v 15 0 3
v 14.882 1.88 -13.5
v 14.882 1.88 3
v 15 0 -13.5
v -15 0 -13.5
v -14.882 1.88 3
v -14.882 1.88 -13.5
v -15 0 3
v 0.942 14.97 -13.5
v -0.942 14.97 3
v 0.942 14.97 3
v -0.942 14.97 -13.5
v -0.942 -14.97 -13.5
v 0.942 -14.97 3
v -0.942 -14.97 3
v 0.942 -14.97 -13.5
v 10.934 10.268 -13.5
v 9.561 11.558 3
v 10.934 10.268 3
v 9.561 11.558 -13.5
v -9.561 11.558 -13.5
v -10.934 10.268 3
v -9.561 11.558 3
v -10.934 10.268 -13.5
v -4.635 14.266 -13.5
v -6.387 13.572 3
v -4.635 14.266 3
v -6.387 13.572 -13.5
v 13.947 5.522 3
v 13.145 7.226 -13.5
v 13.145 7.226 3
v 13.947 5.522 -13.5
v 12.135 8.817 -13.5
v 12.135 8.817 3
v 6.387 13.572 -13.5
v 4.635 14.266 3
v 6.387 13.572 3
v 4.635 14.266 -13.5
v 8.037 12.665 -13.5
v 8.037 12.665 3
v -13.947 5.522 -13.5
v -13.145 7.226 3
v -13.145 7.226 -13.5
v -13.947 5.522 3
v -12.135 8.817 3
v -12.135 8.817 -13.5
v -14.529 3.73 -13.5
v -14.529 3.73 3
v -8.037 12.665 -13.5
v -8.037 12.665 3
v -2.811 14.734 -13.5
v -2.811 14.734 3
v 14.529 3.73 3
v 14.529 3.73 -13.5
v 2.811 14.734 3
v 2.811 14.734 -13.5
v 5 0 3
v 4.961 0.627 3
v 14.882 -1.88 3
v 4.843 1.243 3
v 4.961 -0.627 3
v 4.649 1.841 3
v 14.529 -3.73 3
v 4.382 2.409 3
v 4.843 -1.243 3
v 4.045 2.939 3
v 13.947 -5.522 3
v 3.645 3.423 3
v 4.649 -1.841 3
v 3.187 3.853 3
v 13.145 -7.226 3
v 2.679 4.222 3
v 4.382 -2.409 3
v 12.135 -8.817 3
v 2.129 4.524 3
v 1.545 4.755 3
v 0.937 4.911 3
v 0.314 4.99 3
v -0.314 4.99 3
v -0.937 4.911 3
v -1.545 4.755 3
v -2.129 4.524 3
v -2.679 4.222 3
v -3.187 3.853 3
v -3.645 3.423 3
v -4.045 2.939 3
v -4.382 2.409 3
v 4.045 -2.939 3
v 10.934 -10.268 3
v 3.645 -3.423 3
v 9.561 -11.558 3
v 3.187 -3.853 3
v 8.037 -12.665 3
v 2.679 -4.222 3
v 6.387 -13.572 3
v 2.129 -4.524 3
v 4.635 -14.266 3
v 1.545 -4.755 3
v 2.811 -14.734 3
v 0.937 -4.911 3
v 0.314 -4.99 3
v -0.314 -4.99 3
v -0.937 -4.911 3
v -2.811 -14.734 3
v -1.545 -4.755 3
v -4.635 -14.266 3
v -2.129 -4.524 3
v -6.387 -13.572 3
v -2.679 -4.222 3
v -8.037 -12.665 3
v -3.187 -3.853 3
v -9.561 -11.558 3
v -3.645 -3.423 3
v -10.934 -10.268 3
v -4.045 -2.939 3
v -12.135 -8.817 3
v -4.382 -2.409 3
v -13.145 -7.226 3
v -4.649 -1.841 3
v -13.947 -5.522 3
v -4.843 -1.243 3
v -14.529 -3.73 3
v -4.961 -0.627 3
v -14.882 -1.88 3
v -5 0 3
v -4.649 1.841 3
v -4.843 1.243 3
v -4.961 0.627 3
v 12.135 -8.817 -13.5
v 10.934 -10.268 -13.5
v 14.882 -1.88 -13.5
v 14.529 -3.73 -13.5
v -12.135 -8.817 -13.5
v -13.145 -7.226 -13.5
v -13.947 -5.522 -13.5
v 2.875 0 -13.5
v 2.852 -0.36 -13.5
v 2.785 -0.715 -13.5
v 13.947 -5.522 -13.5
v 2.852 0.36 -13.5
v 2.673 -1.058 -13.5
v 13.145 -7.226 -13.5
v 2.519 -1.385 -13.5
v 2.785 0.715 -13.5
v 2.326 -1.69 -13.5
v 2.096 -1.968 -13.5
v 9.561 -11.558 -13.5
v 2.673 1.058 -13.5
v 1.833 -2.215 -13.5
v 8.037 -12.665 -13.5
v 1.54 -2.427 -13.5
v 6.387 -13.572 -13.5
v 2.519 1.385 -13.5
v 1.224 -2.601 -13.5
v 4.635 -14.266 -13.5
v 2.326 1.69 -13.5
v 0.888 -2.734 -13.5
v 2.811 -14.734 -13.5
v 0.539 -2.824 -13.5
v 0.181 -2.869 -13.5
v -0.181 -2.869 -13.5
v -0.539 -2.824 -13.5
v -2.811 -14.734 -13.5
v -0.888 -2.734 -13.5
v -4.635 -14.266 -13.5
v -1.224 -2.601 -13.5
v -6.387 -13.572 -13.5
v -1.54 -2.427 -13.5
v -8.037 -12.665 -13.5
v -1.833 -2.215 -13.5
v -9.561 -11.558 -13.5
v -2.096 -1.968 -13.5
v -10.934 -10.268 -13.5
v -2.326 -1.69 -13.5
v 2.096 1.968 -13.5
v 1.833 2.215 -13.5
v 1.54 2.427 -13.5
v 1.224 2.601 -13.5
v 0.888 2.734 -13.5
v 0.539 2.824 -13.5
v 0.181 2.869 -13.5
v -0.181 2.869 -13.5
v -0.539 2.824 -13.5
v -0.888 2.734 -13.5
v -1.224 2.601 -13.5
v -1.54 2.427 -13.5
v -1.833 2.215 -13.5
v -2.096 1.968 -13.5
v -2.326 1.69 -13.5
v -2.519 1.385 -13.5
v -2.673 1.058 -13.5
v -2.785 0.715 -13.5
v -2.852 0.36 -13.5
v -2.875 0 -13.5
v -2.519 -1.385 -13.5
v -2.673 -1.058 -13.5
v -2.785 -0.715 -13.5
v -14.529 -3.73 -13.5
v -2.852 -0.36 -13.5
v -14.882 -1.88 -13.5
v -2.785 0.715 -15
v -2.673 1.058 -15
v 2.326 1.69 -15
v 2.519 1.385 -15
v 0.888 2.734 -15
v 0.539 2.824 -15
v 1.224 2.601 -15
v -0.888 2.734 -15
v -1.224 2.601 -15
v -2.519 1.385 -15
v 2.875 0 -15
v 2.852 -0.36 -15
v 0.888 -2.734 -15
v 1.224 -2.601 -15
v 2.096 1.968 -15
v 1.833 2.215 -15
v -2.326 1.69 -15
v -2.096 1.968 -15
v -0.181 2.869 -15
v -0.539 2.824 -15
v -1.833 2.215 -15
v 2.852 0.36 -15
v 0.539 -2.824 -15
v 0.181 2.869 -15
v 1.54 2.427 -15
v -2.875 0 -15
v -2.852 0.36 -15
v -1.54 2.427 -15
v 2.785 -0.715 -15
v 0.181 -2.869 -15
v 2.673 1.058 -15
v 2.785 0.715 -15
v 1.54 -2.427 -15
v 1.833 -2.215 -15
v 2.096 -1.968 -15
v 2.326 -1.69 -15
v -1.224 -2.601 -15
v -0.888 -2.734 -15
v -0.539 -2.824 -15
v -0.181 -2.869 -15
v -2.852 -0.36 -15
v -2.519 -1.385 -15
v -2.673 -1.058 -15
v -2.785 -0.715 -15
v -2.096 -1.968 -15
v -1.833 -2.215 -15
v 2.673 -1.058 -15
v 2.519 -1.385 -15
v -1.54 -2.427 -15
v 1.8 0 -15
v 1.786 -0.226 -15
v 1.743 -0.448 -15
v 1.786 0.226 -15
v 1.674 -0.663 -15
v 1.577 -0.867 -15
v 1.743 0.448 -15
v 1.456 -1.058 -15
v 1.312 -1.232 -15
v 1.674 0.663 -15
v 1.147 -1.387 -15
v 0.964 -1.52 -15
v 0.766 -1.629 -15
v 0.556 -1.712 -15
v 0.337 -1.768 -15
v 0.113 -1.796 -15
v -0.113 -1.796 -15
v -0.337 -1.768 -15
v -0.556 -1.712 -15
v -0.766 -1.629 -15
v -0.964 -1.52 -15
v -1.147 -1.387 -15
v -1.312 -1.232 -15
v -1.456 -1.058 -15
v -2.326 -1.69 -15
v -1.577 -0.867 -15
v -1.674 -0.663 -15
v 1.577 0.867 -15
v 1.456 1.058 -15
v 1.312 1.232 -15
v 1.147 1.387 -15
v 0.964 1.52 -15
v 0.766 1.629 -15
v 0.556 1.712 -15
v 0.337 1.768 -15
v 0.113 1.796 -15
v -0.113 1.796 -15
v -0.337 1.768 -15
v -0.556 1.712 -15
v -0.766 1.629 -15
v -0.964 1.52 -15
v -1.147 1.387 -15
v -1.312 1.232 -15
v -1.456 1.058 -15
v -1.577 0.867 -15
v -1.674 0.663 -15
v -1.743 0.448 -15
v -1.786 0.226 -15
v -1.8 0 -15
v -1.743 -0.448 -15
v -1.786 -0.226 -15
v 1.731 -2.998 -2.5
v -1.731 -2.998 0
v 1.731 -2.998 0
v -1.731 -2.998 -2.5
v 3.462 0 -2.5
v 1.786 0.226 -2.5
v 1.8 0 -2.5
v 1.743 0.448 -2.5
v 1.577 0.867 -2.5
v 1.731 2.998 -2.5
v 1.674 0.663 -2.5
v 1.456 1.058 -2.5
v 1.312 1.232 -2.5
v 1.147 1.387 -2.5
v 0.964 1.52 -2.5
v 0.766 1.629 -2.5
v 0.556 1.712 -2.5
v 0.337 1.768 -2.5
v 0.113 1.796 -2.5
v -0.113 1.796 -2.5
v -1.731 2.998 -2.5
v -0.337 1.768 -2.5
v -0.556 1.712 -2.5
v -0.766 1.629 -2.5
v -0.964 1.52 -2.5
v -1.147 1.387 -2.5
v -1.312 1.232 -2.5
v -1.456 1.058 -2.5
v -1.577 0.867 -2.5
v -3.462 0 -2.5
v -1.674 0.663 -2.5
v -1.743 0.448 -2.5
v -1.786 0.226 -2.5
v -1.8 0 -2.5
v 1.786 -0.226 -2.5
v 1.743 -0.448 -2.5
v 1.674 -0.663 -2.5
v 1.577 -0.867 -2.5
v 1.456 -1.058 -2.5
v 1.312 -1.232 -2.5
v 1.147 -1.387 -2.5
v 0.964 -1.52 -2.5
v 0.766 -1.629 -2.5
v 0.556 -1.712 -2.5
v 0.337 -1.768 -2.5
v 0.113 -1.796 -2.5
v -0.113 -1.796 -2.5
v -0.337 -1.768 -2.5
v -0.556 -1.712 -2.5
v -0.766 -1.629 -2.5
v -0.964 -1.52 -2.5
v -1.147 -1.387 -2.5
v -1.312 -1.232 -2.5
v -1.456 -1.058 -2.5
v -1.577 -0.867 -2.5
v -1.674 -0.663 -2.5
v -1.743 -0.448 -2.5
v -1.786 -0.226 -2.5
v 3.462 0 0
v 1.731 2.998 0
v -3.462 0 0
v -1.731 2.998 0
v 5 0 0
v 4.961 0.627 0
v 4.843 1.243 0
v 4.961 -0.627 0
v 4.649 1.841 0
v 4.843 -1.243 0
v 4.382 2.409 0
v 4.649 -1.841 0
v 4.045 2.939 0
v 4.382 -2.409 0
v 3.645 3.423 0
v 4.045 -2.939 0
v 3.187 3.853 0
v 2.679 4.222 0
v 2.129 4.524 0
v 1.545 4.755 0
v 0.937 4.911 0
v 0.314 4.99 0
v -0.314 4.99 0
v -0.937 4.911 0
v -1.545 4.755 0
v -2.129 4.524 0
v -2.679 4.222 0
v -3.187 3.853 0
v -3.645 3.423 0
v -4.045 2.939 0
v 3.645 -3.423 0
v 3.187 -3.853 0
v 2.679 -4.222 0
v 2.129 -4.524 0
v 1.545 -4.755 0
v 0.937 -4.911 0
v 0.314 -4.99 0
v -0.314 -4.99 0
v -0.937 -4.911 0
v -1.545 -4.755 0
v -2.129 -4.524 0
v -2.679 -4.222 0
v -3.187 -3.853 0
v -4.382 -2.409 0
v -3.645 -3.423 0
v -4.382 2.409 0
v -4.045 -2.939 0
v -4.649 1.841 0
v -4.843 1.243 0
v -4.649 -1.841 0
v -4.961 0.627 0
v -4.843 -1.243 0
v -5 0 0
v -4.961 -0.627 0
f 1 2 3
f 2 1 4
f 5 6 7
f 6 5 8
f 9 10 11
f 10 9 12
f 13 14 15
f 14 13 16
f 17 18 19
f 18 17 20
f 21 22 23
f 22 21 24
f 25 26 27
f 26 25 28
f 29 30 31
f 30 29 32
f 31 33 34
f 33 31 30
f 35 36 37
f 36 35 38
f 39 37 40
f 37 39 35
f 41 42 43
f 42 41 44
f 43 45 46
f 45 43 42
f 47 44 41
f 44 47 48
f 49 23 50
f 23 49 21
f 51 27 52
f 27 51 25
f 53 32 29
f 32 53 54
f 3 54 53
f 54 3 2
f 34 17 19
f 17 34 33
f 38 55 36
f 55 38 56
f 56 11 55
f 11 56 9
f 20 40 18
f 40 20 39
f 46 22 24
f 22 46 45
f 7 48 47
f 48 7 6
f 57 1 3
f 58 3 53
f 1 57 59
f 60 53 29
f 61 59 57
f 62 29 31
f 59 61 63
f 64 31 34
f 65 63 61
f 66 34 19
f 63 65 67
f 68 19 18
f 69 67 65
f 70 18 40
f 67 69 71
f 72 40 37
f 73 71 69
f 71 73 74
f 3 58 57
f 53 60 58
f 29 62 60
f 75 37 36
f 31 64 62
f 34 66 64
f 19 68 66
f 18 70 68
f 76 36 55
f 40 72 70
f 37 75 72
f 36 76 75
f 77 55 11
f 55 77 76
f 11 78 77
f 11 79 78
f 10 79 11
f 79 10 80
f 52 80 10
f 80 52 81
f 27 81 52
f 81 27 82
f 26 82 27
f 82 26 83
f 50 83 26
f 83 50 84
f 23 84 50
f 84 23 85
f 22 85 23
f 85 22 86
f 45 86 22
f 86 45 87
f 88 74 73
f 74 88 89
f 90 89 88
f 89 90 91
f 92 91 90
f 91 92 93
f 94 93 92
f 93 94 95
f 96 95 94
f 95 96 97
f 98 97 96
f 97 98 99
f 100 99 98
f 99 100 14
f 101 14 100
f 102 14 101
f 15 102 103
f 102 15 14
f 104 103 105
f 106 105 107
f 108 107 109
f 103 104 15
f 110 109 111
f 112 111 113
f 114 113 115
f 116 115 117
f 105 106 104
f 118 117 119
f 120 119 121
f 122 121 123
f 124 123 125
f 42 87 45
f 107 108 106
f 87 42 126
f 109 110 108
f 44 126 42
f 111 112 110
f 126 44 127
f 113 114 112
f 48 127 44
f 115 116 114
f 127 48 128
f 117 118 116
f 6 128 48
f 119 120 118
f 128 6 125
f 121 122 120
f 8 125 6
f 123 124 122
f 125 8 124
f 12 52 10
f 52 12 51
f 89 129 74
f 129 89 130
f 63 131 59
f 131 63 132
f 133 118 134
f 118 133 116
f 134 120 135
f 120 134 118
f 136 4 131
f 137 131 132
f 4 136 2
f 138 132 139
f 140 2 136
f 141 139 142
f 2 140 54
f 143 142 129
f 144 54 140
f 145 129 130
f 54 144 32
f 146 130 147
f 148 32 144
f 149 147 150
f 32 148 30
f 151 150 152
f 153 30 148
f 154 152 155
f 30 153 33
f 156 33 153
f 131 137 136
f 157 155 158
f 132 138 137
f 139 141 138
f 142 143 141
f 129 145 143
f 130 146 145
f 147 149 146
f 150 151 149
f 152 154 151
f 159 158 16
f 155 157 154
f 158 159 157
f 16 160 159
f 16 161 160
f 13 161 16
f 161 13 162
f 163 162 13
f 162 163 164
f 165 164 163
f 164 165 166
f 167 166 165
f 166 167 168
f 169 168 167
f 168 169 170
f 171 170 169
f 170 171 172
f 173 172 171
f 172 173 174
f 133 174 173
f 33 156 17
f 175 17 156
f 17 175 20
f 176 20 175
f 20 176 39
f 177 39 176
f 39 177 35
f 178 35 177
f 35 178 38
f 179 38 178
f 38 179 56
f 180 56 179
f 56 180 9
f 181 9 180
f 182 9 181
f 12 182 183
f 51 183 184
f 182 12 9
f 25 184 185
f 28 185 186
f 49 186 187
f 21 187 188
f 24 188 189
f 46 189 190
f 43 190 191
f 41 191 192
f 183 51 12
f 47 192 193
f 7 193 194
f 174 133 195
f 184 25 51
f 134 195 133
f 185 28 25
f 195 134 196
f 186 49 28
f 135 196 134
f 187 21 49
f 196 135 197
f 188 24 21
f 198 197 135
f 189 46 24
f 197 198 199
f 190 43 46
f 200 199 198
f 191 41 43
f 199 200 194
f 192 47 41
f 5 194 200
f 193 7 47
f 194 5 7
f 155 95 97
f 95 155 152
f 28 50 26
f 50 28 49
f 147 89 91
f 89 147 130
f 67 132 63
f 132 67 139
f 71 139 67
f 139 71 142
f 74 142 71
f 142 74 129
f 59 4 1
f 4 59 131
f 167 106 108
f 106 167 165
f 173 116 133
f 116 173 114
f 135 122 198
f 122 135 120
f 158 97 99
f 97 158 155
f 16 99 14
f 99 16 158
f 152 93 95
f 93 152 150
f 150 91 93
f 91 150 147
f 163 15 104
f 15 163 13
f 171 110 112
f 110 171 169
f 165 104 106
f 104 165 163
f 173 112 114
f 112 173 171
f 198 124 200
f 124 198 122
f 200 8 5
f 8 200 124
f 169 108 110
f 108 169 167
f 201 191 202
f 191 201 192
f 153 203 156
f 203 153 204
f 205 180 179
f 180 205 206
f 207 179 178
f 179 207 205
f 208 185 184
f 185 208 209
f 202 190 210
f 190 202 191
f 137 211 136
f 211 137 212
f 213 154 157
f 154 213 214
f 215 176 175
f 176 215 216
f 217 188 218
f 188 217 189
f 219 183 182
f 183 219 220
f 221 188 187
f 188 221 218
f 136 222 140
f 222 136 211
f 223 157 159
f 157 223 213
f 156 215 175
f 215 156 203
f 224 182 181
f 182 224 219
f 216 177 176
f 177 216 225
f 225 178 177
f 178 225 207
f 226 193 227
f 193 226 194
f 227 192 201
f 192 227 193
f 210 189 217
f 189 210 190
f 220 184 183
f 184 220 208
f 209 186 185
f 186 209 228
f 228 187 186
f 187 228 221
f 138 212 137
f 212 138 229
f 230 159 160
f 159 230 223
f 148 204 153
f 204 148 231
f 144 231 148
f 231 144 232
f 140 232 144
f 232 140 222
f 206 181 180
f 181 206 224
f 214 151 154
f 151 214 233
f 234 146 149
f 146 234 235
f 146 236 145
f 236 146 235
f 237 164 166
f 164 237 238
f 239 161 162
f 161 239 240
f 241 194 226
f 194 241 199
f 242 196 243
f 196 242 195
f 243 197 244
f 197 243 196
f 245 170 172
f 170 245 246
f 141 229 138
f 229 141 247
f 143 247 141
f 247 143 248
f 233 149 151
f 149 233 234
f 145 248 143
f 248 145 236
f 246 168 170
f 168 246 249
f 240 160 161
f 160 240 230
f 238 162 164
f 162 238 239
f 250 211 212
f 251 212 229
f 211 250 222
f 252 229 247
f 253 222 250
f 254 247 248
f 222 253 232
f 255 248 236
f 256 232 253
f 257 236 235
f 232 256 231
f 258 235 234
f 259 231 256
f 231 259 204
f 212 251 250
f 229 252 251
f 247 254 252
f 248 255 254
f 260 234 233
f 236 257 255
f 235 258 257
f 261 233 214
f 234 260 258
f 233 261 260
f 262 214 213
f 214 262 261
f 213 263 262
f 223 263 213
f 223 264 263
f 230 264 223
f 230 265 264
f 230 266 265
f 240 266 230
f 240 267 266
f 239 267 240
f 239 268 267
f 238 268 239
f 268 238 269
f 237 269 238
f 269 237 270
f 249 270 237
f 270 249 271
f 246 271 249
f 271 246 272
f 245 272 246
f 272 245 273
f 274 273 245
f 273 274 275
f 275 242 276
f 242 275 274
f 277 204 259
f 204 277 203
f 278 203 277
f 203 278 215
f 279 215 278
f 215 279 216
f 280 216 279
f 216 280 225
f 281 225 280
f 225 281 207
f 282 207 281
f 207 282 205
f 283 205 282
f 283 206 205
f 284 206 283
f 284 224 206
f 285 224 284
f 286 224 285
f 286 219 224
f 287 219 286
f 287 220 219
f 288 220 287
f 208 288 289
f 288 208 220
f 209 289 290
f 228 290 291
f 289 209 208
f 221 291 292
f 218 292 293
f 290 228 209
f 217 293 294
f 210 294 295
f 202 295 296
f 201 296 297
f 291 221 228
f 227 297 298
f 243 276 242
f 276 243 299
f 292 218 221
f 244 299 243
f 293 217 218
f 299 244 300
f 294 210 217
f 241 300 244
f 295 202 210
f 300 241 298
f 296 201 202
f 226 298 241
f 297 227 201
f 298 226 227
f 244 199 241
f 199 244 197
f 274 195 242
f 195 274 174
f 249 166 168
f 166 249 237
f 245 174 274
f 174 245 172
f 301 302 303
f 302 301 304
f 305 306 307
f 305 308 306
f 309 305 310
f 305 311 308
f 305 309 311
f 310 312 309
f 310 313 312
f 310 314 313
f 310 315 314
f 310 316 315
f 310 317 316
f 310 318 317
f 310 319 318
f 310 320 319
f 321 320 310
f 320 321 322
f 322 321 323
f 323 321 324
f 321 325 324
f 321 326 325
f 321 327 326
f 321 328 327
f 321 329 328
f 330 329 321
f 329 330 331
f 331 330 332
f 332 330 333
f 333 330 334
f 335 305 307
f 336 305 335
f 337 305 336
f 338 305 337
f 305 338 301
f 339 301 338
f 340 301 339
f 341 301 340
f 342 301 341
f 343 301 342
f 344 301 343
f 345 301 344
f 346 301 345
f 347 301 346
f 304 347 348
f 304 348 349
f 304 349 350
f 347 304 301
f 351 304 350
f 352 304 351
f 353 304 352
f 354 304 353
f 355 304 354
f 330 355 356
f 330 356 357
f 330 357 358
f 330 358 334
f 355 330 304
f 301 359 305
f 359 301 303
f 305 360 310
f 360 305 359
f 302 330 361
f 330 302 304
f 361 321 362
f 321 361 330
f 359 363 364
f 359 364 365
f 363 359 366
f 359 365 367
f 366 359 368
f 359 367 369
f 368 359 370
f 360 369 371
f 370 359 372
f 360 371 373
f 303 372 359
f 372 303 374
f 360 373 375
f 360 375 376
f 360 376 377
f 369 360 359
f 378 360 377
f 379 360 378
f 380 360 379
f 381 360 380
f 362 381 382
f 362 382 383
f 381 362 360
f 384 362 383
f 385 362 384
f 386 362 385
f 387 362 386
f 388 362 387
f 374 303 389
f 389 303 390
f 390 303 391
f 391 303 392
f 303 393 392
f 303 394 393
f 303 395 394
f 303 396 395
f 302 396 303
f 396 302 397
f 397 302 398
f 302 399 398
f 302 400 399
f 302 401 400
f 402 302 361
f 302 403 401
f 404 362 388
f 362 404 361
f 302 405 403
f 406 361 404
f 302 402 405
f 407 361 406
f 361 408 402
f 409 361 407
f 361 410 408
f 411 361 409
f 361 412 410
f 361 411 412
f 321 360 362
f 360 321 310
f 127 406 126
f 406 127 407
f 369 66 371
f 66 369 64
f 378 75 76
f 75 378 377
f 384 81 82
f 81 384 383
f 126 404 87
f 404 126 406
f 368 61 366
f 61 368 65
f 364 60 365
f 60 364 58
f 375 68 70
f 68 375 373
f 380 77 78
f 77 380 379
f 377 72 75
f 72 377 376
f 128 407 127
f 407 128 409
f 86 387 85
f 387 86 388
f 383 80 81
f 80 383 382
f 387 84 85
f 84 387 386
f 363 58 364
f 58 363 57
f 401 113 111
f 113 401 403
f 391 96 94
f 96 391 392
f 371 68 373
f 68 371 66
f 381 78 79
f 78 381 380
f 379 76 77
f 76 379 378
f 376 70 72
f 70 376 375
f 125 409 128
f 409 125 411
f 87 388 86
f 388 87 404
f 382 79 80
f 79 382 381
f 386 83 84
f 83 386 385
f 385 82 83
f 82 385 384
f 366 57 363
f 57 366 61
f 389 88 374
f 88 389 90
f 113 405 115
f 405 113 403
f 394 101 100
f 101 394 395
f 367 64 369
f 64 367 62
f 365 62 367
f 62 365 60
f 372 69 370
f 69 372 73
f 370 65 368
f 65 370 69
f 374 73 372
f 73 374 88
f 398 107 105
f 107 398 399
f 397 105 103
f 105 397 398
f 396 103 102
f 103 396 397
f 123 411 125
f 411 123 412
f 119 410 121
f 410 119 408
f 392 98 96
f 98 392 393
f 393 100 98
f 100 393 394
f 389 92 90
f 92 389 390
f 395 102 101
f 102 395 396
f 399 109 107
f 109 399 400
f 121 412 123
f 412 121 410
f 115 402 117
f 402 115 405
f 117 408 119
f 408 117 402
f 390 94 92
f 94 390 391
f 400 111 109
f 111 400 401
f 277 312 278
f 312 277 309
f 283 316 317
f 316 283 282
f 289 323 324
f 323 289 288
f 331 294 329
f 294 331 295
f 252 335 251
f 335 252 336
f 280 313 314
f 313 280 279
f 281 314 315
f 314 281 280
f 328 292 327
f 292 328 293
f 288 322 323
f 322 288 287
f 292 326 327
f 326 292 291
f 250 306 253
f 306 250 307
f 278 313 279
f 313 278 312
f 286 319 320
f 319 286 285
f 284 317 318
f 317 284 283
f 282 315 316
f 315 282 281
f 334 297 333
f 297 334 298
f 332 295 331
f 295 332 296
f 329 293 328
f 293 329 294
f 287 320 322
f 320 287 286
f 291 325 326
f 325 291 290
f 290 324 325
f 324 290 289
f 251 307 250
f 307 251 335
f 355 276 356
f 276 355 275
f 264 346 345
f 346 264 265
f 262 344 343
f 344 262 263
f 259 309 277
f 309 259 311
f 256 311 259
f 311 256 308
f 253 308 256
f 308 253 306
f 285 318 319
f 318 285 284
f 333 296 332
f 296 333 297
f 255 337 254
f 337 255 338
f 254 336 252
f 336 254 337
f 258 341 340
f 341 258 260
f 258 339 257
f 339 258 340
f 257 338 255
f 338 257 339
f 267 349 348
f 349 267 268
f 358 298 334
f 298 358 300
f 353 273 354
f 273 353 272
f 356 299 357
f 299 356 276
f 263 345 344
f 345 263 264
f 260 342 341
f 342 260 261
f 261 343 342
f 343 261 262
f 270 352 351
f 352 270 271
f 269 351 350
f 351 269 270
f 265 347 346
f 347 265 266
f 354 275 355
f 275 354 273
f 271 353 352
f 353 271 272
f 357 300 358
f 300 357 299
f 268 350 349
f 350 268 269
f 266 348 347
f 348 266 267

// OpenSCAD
$fn = 50;

difference() {
	union() {
		translate(v = [0, 0, -13.5]) {
			cylinder(h = 16.5, r = 15.0);
		}
		#translate(v = [0, 0, -15.0]) {
			cylinder(h = 15, r = 2.875);
		}
	}
	union() {
		translate(v = [0, 0, 0]) {
			rotate(a = [0, 0, 0]) {
				difference() {
					union() {
						translate(v = [0, 0, -2.5]) {
							linear_extrude(height = 2.5) {
								polygon(points = [[3.4619999999999997, 0.0], [1.7310000000000003, 2.9981799479017264], [-1.7309999999999992, 2.9981799479017264], [-3.4619999999999997, 4.2397272186481365e-16], [-1.7310000000000014, -2.998179947901726], [1.7309999999999977, -2.9981799479017277]]);
							}
						}
					}
					union();
				}
			}
		}
		#cylinder(h = 3, r = 5.0);
		#translate(v = [0, 0, -100.0]) {
			cylinder(h = 200, r = 1.8);
		}
	}
}
